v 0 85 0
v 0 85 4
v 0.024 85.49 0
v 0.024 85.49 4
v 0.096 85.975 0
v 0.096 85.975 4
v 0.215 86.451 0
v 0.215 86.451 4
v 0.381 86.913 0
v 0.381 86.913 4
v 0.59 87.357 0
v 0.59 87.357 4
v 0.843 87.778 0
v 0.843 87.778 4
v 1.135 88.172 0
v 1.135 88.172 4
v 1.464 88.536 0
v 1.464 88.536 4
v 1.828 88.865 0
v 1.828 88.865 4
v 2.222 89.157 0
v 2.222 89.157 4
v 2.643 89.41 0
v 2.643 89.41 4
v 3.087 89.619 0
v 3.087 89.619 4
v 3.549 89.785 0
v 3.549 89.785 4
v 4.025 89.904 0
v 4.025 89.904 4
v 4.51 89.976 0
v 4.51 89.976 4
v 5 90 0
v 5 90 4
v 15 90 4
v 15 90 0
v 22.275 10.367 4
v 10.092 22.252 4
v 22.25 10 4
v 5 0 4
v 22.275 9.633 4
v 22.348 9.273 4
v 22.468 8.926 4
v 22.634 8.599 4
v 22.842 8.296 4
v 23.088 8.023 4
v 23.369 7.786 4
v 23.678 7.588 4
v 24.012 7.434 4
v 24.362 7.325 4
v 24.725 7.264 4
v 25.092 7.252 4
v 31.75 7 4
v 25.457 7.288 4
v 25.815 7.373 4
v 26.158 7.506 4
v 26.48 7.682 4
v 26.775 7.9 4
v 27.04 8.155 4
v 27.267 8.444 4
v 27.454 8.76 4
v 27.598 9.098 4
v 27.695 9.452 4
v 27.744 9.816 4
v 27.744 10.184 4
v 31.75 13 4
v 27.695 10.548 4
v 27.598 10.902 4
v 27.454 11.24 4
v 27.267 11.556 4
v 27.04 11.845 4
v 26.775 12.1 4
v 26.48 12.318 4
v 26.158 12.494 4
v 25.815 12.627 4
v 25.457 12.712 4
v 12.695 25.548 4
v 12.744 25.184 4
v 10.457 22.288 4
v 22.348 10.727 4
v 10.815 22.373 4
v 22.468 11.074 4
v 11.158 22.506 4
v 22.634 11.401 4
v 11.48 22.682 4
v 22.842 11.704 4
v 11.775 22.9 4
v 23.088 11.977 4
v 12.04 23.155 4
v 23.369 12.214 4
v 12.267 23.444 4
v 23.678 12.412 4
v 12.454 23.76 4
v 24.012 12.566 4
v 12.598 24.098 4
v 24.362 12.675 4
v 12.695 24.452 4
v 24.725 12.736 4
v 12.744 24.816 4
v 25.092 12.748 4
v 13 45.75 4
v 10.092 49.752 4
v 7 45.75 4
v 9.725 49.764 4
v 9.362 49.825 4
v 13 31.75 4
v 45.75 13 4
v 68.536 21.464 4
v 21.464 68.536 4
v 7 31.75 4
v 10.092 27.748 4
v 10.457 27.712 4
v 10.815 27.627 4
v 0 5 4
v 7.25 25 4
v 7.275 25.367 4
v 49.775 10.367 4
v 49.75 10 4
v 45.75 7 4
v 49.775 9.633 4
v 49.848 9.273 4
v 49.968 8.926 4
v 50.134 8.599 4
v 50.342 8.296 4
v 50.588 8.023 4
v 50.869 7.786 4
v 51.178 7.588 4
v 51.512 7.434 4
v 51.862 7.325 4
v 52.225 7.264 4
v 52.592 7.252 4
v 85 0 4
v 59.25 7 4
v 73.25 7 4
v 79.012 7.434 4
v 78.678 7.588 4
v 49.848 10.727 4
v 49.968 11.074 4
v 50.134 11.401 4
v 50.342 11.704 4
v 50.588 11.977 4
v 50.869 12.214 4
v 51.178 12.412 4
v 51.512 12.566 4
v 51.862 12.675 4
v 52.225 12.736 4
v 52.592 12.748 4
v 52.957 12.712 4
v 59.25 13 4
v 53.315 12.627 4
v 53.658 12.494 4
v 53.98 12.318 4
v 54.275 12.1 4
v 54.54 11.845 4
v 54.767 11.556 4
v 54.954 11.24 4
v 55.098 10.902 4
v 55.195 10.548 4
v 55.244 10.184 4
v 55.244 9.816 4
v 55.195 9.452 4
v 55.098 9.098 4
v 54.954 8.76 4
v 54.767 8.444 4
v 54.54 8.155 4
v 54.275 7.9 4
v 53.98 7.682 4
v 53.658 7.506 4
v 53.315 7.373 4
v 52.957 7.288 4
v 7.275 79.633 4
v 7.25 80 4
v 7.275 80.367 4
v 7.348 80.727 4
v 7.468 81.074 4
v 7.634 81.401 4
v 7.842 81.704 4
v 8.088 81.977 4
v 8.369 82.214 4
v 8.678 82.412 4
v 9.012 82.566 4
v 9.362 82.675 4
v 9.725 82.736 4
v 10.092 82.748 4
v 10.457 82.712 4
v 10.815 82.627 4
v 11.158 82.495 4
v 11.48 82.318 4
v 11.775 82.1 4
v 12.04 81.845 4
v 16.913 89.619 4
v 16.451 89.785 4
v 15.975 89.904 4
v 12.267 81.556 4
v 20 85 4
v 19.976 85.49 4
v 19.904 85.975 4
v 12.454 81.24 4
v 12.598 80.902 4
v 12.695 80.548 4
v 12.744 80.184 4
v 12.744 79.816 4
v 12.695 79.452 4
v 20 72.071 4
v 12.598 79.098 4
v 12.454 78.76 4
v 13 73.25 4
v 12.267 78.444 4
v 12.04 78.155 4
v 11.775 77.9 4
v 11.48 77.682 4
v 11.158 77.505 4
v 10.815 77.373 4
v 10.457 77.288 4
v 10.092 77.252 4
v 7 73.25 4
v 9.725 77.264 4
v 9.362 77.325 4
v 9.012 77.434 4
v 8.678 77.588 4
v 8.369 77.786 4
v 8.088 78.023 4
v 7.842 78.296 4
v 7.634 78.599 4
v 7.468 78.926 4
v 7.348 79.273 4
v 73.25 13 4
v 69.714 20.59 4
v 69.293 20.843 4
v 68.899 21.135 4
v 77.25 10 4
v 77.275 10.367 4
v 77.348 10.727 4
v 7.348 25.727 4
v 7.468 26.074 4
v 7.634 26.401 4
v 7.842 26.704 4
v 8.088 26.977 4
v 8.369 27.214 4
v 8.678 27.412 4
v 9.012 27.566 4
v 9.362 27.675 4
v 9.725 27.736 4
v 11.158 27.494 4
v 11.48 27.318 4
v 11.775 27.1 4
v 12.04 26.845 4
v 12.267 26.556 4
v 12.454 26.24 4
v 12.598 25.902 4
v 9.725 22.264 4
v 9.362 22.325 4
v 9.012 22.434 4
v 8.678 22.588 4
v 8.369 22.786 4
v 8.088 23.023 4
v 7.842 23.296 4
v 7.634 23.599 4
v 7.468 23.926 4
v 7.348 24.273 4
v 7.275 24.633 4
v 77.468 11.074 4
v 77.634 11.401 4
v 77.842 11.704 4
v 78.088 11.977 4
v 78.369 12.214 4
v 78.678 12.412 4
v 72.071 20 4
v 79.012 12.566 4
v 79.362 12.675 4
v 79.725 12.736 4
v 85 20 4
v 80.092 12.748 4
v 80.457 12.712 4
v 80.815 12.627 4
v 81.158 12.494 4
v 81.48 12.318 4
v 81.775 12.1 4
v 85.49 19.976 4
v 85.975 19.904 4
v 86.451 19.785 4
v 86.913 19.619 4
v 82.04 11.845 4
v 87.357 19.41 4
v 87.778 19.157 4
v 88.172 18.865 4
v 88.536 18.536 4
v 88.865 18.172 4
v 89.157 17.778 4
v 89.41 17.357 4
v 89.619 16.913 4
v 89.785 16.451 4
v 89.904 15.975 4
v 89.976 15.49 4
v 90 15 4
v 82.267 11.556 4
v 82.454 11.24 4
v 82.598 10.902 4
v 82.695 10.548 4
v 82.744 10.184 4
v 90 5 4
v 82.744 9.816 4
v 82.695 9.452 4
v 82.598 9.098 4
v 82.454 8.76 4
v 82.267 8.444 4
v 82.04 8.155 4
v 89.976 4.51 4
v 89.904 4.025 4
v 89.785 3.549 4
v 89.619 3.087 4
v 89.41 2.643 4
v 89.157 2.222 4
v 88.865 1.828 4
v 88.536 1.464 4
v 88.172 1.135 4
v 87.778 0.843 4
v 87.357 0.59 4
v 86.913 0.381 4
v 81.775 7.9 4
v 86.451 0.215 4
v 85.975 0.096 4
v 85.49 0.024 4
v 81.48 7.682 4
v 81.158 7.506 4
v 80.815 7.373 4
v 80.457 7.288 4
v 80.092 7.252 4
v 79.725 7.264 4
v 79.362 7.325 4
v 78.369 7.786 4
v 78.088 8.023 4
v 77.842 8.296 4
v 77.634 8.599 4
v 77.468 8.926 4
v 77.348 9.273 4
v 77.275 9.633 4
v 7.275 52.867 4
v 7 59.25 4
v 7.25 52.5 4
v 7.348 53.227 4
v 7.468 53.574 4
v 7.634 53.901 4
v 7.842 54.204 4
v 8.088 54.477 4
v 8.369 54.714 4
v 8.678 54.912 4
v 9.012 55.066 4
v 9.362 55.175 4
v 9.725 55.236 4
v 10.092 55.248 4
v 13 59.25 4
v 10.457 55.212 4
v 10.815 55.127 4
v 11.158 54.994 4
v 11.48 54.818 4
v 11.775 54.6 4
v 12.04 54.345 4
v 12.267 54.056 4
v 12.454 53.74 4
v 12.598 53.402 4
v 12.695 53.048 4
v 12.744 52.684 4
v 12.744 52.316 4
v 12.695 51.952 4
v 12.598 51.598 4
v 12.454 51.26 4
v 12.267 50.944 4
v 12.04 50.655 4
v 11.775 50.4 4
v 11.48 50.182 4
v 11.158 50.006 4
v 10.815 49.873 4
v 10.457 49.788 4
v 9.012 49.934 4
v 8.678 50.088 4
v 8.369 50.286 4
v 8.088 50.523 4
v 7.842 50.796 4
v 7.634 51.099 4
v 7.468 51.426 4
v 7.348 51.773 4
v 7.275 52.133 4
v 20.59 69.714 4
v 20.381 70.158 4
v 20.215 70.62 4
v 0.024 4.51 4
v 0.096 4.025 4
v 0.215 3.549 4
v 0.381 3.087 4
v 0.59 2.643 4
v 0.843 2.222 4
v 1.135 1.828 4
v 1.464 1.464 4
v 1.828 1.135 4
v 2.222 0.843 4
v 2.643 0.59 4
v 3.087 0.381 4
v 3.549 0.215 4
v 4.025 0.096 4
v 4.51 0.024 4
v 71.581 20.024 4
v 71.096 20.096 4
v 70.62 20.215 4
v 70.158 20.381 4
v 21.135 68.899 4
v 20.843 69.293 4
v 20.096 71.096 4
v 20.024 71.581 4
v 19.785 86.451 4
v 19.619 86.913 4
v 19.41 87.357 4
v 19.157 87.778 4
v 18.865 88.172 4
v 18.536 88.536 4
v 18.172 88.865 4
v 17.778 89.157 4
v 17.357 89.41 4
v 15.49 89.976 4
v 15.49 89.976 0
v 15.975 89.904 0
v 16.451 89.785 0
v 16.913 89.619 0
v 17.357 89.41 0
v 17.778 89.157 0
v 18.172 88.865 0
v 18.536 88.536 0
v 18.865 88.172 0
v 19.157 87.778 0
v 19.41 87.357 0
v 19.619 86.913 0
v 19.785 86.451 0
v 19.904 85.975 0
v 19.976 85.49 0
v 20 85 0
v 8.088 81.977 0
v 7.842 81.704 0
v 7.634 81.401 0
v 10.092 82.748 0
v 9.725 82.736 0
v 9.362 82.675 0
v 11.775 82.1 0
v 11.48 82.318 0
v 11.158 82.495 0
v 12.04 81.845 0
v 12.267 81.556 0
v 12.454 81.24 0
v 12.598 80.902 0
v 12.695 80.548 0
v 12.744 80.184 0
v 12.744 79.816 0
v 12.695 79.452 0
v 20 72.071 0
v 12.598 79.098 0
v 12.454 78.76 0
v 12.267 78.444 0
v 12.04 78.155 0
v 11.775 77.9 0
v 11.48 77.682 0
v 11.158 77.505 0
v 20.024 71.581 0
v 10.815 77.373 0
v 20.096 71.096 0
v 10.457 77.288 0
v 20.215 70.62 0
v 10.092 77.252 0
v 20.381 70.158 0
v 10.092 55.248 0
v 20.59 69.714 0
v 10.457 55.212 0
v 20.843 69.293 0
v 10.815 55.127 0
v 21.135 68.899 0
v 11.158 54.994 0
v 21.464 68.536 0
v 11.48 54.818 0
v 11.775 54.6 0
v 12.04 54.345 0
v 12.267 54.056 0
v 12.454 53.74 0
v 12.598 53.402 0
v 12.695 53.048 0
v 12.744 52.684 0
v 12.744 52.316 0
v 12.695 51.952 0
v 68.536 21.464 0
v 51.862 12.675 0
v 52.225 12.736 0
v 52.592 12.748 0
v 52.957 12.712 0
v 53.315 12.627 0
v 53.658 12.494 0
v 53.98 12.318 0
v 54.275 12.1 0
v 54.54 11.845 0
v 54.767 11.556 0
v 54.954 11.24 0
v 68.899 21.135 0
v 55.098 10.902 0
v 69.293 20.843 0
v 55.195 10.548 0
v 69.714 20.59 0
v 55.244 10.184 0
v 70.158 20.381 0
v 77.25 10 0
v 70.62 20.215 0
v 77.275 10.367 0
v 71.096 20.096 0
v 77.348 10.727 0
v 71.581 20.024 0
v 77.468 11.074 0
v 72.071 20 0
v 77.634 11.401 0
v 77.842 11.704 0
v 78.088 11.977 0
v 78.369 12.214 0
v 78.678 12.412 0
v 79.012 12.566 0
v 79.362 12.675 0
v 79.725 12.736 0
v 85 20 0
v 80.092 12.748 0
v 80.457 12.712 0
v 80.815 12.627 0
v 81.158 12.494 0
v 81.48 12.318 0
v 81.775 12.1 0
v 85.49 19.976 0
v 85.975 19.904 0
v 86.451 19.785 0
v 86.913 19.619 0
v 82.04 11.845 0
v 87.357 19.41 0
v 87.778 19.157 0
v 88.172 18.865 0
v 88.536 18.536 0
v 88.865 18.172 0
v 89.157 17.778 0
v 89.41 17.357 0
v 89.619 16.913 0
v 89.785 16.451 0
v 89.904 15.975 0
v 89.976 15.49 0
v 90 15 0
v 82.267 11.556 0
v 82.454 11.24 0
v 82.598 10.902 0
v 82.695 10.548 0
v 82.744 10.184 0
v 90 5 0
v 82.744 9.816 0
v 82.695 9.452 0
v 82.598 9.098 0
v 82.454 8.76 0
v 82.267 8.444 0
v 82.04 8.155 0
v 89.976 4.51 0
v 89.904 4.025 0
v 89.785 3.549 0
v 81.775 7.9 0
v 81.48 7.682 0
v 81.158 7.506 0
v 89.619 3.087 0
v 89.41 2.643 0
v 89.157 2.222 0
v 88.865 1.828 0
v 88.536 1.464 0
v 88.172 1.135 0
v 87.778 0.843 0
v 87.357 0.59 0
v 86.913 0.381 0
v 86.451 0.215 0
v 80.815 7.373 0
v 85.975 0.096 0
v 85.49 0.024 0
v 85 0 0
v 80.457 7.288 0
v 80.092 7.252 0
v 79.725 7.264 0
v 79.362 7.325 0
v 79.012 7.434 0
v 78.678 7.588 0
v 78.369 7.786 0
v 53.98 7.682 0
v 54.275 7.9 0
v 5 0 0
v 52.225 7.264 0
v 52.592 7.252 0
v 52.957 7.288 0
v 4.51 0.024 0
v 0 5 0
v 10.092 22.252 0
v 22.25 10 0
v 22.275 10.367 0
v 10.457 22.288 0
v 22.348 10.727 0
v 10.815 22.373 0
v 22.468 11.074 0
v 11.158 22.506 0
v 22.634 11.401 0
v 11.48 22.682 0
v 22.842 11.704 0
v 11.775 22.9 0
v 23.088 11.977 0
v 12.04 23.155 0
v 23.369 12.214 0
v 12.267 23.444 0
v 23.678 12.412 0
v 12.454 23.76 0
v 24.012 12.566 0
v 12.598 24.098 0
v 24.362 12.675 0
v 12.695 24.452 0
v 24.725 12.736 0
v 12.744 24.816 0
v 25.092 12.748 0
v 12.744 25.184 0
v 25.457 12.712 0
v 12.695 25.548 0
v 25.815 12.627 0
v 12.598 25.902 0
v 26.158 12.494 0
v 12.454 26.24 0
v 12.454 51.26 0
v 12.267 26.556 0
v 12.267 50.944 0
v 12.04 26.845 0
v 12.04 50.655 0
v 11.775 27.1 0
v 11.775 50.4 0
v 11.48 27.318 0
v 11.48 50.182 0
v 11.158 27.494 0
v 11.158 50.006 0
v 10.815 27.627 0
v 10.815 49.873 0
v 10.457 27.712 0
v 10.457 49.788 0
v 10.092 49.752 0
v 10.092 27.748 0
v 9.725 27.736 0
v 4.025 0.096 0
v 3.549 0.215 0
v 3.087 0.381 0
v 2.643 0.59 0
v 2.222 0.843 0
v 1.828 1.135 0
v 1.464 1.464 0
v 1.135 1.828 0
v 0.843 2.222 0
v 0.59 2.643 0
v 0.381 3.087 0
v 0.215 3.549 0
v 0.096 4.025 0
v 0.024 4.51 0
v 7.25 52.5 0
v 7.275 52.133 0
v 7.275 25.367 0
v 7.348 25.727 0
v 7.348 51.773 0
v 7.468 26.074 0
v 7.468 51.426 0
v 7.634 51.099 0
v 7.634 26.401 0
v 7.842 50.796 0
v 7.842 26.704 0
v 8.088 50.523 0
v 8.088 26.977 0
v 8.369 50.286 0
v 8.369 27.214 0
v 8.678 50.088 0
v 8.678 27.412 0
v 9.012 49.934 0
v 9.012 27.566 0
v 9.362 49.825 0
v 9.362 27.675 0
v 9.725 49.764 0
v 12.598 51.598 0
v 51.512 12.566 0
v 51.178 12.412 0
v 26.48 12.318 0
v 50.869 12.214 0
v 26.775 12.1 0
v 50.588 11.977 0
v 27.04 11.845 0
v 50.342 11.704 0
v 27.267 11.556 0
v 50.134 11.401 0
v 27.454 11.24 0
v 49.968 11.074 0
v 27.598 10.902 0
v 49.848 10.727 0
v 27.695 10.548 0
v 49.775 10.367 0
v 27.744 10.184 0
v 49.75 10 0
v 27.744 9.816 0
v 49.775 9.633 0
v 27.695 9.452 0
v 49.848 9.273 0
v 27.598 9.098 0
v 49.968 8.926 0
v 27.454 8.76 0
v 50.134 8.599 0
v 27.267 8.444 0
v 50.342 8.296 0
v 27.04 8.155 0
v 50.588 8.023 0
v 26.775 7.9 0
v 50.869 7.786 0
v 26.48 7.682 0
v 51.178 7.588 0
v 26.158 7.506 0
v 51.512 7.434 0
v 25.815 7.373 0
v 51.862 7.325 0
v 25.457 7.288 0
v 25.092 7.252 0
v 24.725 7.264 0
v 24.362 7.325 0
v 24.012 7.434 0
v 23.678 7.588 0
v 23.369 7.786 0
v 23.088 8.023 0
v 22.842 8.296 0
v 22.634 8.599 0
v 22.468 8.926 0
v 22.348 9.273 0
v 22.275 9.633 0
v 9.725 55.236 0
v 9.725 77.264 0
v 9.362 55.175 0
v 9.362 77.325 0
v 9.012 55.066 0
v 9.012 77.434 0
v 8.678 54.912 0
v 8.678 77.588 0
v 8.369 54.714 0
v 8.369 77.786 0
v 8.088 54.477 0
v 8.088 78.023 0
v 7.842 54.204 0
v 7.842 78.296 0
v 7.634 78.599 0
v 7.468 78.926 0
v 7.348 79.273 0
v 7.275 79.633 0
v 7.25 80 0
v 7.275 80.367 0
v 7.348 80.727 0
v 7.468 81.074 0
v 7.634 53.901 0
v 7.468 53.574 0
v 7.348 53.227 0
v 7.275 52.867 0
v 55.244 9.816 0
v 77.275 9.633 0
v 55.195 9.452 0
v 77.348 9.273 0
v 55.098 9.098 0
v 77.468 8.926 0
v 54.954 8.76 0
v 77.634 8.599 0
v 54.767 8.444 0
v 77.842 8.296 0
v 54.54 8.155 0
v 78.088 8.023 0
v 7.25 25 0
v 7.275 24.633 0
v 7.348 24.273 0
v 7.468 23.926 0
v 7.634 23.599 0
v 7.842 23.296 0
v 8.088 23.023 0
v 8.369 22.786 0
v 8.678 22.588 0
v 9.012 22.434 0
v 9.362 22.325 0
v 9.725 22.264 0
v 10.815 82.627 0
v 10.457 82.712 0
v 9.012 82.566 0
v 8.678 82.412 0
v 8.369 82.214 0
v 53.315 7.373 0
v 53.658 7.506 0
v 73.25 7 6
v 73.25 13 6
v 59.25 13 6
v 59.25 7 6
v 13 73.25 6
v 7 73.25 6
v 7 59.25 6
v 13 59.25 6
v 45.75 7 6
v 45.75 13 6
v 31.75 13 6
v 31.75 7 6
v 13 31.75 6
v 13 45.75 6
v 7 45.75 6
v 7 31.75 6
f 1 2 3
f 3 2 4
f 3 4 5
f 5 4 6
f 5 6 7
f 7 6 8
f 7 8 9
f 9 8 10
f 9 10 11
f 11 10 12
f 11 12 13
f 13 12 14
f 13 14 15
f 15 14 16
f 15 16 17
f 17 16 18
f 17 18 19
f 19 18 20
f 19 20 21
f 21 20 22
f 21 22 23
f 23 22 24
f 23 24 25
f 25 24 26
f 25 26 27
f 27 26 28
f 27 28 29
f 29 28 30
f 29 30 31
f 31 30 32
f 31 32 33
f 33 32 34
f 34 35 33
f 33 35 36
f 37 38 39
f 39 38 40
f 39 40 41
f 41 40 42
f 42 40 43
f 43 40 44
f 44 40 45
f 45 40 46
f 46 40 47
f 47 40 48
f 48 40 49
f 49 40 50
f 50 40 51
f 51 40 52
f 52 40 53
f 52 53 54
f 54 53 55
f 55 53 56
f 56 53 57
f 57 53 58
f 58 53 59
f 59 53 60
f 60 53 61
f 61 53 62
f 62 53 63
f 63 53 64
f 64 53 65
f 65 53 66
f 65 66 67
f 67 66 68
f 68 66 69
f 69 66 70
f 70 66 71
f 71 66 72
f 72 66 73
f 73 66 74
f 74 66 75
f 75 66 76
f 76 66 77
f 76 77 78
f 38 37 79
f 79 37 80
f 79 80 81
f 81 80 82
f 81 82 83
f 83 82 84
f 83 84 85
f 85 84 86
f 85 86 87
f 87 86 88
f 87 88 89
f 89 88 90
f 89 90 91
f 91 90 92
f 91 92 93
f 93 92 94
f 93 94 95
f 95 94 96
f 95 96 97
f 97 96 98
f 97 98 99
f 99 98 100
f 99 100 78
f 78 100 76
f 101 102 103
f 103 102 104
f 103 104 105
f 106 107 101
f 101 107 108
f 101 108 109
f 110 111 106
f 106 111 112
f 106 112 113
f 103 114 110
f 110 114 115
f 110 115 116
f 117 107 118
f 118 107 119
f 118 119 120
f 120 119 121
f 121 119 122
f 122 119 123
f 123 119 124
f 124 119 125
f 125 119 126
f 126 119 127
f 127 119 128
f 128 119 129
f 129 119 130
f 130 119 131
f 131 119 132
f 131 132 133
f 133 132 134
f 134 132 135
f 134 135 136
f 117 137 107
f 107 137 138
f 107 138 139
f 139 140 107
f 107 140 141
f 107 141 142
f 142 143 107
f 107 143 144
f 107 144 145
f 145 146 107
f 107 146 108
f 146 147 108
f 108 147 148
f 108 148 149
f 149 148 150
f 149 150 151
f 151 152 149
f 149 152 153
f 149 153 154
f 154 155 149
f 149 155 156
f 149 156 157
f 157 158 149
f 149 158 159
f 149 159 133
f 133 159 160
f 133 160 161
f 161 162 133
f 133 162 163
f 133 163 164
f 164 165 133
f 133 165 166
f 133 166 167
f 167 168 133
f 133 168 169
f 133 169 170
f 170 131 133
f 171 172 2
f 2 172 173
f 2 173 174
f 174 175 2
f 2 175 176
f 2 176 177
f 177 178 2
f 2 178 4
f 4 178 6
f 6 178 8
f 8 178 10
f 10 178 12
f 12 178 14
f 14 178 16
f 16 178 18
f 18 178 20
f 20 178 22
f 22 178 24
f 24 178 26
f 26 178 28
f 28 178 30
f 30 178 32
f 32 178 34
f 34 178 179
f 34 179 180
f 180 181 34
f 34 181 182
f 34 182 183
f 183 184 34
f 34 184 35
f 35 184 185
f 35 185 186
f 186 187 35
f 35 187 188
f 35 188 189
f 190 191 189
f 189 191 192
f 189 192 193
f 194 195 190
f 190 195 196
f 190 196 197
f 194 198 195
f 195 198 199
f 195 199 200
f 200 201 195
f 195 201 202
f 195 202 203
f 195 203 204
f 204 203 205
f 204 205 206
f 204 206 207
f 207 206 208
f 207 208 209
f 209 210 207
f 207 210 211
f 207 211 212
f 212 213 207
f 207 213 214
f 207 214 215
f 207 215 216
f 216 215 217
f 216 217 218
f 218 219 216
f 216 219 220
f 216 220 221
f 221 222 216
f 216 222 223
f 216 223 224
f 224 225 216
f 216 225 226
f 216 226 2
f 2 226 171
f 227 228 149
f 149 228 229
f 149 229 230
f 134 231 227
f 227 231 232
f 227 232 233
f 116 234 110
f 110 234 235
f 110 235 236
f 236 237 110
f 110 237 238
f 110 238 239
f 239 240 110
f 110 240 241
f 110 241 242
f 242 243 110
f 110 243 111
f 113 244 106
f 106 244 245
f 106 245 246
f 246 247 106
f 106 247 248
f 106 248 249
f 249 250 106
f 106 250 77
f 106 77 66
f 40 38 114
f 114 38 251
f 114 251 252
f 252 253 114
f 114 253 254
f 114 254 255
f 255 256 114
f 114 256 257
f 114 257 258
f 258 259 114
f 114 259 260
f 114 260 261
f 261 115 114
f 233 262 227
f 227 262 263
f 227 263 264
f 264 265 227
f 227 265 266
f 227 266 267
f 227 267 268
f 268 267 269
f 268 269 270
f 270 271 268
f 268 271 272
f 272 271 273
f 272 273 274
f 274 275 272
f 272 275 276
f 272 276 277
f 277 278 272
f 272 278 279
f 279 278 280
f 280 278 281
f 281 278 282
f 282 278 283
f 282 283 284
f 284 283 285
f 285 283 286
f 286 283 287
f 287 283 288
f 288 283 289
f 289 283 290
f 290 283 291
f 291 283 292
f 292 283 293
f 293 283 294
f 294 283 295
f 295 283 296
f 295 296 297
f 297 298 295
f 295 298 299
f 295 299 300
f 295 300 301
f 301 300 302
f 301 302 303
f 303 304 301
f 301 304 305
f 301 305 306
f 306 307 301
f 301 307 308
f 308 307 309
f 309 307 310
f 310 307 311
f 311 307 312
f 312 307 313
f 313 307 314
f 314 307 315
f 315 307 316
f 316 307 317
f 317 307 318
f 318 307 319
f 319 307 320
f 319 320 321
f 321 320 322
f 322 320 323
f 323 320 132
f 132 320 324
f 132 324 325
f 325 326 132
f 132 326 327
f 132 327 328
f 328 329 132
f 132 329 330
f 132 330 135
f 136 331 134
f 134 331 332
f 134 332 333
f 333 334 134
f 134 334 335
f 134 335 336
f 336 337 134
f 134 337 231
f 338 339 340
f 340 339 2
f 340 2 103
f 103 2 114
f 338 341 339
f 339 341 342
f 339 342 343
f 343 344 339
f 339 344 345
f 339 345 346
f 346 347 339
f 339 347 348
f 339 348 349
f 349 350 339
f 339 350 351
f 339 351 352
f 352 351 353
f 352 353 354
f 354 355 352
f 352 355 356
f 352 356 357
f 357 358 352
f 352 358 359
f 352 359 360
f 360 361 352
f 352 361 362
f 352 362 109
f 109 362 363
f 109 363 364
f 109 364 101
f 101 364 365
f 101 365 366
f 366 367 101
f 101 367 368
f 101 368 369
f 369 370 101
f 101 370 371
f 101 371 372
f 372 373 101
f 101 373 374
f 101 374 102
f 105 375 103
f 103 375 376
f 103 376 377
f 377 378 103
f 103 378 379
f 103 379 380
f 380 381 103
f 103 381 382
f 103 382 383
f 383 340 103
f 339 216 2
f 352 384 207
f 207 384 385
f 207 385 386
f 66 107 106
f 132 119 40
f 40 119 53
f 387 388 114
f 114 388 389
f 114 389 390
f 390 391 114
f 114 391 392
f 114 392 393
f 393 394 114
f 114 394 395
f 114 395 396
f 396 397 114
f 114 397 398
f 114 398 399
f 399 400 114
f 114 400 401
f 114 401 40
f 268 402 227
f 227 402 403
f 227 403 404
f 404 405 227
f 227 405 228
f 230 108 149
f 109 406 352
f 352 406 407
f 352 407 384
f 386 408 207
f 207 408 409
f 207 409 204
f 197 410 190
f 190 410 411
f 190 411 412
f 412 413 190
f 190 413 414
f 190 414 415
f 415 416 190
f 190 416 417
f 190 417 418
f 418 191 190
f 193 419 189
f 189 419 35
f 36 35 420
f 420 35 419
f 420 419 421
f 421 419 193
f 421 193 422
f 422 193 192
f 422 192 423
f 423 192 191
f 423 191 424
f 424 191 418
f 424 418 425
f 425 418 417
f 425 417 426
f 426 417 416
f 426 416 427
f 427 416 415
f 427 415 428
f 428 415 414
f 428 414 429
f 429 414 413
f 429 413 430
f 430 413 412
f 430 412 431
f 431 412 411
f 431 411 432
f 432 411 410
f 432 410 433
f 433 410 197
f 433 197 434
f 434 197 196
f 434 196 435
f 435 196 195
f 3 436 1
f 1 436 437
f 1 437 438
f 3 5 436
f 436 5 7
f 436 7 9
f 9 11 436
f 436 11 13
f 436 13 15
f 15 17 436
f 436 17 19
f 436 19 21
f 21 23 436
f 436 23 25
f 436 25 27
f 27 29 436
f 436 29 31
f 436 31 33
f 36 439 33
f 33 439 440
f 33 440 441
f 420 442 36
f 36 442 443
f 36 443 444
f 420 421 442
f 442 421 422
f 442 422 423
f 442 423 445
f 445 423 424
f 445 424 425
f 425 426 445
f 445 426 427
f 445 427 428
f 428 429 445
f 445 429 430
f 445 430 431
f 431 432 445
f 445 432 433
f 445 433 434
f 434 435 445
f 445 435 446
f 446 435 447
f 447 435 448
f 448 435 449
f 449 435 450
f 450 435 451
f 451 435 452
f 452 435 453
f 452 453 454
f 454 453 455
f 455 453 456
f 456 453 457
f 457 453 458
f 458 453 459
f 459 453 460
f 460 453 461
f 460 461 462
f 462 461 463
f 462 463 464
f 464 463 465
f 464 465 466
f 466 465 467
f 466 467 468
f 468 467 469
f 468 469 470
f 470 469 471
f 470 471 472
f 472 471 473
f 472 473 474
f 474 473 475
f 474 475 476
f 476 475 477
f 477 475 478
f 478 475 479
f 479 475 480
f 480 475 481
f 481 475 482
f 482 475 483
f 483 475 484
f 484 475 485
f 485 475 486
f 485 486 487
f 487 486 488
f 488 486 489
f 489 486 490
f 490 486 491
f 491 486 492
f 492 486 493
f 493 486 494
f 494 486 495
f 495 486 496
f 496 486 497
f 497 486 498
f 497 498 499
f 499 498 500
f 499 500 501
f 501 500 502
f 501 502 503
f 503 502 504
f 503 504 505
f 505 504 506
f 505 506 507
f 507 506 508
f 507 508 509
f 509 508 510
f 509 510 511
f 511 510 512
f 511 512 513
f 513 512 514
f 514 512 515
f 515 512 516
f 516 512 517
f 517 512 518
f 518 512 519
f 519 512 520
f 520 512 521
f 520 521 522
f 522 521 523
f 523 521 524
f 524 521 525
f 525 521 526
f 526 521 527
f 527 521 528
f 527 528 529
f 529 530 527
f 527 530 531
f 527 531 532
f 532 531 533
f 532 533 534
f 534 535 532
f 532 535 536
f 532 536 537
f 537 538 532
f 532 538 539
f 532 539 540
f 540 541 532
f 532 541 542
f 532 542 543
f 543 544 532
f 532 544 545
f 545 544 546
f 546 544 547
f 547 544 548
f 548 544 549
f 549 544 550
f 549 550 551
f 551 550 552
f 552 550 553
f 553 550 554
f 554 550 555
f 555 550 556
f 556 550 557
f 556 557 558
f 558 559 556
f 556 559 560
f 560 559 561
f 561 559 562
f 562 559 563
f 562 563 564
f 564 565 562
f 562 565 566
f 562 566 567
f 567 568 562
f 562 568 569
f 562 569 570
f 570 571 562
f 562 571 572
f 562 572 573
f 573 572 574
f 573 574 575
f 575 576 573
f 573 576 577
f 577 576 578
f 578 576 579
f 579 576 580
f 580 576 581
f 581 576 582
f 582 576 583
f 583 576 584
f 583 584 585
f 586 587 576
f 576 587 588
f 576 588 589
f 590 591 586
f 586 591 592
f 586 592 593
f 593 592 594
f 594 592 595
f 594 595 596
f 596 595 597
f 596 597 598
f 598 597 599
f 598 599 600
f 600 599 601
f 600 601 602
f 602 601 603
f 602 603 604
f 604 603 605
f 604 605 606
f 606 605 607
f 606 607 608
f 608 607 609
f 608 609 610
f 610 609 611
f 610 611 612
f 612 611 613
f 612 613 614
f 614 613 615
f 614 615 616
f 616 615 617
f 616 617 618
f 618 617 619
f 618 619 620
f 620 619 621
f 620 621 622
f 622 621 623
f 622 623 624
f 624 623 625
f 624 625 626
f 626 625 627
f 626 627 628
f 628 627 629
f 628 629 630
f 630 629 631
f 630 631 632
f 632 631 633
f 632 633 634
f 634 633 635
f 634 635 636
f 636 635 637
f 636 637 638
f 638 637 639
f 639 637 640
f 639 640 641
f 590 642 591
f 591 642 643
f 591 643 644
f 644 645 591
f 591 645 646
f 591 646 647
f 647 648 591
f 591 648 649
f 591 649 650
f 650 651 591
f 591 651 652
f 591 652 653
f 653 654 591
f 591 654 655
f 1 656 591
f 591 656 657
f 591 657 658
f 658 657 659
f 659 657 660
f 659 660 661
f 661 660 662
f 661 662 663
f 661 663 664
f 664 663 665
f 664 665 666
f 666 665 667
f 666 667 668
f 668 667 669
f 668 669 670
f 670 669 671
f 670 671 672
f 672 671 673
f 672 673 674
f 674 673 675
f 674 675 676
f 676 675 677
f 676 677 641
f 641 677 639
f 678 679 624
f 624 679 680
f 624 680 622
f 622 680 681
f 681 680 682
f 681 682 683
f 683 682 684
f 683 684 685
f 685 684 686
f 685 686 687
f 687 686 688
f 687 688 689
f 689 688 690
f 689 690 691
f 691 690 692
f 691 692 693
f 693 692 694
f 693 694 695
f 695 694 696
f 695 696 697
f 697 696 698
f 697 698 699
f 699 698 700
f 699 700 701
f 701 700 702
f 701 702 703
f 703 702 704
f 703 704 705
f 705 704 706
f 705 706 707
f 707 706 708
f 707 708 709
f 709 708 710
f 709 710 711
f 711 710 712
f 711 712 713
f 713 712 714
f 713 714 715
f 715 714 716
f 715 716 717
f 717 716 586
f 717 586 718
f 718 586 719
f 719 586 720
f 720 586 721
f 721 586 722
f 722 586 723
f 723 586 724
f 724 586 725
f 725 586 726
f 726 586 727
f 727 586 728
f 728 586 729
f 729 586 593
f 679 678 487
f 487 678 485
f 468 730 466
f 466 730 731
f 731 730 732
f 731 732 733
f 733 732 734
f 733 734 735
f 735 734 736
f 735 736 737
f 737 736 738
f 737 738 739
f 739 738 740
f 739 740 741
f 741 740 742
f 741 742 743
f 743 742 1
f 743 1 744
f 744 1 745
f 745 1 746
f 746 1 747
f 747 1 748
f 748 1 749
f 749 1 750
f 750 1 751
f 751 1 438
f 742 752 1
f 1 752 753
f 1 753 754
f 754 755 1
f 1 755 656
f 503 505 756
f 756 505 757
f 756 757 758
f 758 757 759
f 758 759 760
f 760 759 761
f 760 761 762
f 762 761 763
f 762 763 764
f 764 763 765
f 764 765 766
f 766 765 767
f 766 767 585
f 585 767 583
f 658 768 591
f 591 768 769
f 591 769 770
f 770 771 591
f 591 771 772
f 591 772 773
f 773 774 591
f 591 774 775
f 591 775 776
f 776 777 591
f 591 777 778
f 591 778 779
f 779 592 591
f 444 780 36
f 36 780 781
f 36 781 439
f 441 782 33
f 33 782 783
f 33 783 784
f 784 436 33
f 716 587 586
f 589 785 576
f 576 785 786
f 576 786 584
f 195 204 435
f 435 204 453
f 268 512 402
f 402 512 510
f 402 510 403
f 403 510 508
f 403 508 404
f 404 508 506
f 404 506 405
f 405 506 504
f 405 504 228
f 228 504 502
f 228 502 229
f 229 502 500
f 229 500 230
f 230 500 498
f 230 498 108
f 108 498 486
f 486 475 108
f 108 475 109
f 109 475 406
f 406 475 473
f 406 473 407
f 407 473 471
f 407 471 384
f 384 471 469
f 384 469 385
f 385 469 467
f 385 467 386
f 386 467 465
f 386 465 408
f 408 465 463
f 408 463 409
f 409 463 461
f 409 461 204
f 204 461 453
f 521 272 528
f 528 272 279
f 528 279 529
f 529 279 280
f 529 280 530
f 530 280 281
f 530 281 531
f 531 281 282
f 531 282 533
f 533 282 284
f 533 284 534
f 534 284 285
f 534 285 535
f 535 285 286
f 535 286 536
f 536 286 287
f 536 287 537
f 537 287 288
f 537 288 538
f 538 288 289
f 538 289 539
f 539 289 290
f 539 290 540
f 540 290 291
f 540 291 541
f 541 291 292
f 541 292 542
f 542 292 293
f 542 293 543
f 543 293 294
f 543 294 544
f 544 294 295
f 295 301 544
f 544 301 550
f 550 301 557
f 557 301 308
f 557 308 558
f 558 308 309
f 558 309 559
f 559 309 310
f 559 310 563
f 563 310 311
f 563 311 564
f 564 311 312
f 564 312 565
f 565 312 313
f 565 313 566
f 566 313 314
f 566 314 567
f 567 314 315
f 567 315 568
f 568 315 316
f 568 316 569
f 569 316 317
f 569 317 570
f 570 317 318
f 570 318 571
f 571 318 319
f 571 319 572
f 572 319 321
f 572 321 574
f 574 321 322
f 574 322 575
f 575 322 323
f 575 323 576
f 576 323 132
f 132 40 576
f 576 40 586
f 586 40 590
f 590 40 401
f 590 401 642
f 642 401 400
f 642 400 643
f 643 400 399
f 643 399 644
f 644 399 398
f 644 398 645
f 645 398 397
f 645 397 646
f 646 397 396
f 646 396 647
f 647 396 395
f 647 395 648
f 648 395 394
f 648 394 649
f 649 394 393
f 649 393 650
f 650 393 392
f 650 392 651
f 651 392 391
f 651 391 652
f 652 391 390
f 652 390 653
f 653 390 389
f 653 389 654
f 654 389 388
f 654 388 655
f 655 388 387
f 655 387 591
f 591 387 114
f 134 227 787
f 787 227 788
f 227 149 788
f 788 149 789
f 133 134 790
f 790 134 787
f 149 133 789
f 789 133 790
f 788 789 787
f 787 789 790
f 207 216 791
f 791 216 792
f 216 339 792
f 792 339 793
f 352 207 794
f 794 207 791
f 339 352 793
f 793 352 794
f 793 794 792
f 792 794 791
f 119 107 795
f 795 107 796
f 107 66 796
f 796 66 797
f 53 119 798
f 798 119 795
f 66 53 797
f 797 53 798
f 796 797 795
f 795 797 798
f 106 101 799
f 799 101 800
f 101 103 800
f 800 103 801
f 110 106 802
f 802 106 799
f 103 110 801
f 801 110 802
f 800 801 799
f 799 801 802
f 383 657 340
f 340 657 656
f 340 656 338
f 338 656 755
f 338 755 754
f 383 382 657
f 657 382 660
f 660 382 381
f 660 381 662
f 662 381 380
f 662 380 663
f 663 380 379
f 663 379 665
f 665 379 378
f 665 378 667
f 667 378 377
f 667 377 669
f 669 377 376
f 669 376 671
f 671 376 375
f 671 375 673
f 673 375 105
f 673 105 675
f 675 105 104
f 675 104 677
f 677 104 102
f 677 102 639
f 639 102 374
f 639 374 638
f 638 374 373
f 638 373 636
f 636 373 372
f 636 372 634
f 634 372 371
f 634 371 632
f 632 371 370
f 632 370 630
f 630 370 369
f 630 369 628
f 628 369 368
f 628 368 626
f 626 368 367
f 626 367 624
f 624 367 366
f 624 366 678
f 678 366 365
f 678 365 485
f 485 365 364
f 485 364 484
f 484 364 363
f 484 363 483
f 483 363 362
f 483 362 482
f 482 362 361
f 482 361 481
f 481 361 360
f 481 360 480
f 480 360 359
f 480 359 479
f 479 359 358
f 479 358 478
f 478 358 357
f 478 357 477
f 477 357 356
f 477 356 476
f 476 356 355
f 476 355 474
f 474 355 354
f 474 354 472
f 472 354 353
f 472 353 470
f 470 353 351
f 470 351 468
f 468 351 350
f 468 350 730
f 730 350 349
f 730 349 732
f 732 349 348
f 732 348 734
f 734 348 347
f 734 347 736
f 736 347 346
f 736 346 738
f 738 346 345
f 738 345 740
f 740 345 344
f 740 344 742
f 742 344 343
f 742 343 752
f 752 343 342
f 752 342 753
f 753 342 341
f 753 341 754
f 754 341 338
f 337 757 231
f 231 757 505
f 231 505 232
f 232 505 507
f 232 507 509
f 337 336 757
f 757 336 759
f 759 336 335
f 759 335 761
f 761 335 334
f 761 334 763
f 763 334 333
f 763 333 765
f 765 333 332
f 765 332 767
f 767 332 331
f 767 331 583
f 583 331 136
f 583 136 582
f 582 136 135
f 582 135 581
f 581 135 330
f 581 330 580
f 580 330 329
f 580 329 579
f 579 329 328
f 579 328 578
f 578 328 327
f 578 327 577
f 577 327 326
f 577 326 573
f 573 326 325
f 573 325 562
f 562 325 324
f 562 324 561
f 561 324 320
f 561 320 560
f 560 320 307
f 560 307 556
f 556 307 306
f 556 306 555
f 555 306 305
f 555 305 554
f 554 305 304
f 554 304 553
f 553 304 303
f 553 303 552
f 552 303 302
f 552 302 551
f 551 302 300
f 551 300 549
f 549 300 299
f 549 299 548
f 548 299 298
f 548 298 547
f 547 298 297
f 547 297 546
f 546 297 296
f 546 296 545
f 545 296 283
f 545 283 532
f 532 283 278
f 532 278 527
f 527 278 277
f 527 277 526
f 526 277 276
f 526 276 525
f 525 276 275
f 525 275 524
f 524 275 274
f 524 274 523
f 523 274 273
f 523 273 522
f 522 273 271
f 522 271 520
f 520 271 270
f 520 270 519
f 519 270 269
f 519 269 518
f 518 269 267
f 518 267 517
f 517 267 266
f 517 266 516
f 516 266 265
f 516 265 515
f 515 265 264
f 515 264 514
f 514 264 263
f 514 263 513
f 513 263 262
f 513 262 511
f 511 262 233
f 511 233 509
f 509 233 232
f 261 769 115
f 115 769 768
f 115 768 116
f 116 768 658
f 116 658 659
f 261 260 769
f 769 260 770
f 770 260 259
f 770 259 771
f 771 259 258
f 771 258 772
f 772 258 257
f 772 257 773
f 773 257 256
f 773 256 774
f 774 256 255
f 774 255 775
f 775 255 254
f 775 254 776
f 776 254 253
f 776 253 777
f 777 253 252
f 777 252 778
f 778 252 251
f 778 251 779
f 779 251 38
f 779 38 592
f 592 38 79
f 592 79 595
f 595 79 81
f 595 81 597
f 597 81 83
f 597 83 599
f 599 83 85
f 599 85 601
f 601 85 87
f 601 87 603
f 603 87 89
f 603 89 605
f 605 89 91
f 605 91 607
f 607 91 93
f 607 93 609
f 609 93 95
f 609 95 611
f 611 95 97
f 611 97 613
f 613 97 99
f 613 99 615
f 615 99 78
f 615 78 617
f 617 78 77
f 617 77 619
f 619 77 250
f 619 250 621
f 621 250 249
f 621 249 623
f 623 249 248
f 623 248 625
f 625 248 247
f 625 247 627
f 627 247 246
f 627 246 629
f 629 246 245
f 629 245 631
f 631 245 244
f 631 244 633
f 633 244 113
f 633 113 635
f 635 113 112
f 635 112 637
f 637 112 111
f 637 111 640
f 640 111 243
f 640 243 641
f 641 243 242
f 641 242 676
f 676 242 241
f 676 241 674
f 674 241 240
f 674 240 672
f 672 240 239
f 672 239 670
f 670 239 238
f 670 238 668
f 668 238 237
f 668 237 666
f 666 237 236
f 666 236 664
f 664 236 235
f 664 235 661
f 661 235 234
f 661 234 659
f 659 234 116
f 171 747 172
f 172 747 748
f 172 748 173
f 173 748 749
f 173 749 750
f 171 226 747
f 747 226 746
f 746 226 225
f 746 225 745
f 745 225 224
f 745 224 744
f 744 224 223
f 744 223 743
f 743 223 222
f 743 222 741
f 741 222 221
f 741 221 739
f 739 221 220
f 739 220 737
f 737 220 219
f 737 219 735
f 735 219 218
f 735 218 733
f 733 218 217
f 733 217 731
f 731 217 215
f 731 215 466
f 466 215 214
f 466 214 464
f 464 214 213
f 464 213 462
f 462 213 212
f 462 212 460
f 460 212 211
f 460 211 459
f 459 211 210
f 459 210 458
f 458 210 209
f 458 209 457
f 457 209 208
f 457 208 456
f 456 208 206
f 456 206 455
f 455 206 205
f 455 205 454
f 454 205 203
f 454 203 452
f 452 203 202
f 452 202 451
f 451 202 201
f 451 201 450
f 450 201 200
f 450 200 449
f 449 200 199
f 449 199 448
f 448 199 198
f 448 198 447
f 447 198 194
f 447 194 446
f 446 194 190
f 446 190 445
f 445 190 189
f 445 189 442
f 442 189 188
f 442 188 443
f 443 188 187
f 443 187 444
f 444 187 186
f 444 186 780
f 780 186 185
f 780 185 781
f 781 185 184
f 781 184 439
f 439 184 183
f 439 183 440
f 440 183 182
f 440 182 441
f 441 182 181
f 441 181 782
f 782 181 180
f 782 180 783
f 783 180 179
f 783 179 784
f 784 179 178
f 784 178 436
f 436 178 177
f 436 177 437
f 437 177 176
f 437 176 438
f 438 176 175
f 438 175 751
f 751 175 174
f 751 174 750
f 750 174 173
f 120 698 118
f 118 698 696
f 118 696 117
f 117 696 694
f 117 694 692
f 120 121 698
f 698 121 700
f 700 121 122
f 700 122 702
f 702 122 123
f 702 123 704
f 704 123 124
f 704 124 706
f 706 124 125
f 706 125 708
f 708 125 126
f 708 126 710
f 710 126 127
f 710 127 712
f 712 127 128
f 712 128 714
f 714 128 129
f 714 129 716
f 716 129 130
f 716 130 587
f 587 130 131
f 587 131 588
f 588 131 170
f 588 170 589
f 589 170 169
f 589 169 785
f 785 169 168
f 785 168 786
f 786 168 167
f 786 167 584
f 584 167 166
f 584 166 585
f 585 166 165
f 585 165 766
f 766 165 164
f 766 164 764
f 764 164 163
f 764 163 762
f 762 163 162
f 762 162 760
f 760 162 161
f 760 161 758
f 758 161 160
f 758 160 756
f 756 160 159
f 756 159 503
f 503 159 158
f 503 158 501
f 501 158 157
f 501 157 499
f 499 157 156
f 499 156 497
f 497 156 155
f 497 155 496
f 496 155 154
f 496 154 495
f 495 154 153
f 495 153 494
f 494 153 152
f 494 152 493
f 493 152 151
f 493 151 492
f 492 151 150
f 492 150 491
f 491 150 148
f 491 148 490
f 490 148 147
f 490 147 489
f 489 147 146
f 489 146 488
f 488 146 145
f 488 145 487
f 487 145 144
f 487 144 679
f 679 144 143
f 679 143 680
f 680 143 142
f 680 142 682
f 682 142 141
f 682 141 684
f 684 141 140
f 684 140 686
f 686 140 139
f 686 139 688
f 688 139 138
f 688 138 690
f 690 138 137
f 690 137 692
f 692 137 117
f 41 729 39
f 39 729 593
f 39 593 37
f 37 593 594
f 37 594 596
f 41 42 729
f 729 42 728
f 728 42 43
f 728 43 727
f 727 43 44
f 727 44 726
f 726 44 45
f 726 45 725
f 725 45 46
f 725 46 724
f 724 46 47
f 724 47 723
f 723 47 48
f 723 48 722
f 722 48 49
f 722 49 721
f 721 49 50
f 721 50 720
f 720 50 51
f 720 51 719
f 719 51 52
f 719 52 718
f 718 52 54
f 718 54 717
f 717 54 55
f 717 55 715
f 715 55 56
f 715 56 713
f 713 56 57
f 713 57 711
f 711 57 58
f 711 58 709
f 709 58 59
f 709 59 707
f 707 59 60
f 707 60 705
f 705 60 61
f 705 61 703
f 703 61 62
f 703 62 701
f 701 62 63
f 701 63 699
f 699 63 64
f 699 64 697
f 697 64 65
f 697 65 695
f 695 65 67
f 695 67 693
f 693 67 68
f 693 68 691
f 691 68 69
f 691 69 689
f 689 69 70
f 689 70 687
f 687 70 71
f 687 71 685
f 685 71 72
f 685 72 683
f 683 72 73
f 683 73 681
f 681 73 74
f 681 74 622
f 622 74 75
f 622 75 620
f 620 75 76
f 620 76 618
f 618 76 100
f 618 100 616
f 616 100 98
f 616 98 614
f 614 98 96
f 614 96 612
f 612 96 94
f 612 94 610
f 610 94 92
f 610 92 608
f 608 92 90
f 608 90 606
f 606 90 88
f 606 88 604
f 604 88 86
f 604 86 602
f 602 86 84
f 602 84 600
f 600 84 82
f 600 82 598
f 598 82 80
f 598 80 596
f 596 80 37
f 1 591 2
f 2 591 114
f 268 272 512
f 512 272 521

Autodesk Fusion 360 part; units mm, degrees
sketch "Sketch1" plane through (0, 0, 0) normal (0, 0, 1) x (1, 0, 0)
  line L0 (0, 0) -> (0, 90)
  line L1 (0, 0) -> (90, 0)
  line L2 (0, 90) -> (20, 90)
  line L3 (90, 0) -> (90, 20)
  line L4 (90, 20) -> (70, 20)
  line L5 (20, 90) -> (20, 70)
  line L6 (20, 70) -> (70, 20)
  line L7 (10, 90) -> (10, 0) construction
  line L8 (90, 10) -> (0, 10) construction
  circle A0 centre (80, 10) radius 2.75
  circle A1 centre (25, 10) radius 2.75
  circle A2 centre (52.5, 10) radius 2.75
  line L9 (0, 0) -> (79.8876, 79.8876) construction
  line L10 (0, 0) -> (112.9781, 0) construction
  line L11 (25, 10) -> (52.5, 10) construction
  line L12 (52.5, 10) -> (80, 10) construction
  line L13 (45.75, 7) -> (31.75, 7)
  line L14 (31.75, 7) -> (31.75, 13)
  line L15 (31.75, 13) -> (45.75, 13)
  line L16 (45.75, 13) -> (45.75, 7)
  line L17 (45.75, 7) -> (31.75, 13) construction
  line L18 (31.75, 7) -> (45.75, 13) construction
  line L19 (73.25, 7) -> (59.25, 7)
  line L20 (59.25, 7) -> (59.25, 13)
  line L21 (59.25, 13) -> (73.25, 13)
  line L22 (73.25, 13) -> (73.25, 7)
  line L23 (73.25, 7) -> (59.25, 13) construction
  line L24 (59.25, 7) -> (73.25, 13) construction
  circle A3 centre (10, 25) radius 2.75
  line L25 (7, 31.75) -> (13, 31.75)
  line L26 (13, 31.75) -> (13, 45.75)
  line L27 (7, 45.75) -> (7, 31.75)
  line L28 (13, 45.75) -> (7, 45.75)
  line L29 (7, 59.25) -> (13, 59.25)
  line L30 (13, 59.25) -> (13, 73.25)
  line L31 (13, 73.25) -> (7, 73.25)
  line L32 (7, 73.25) -> (7, 59.25)
  circle A4 centre (10, 80) radius 2.75
  circle A5 centre (10, 52.5) radius 2.75
  point P0 (38.75, 10)
  point P1 (66.25, 10)
  dimension "d1" = 90
  dimension "d2" = 90
  dimension "d3" = 20
  dimension "d4" = 20
  dimension "d5" = 20
  dimension "d6" = 20
  dimension "d7" = 5.5
  dimension "d8" = 5.5
  dimension "d9" = 10
  dimension "d10" = 65
  dimension "d11" = 5.5
  dimension "d12" = 37.5
  dimension "d13" = 45
  dimension "d14" = 14
  dimension "d15" = 6
  dimension "d16" = 14
  dimension "d17" = 6
extrude "Extrude1" add sketch "Sketch1" along normal blind 4
extrude "Extrude3" add sketch "Sketch1" along normal blind 6 contours L13 L14 L15 L16 | L19 L20 L21 L22 | L25 L26 L27 L28 | L29 L30 L31 L32
sketch "Sketch2" plane through (0, 0, 4) normal (0, 0, 1) x (-1, 0, 0)
  circle A0 centre (-25, -10) radius 2.75
  circle A1 centre (-52.5, -10) radius 2.75
  circle A2 centre (-10, -80) radius 2.75
  circle A3 centre (-10, -25) radius 2.75
  circle A4 centre (-80, -10) radius 2.75
  circle A5 centre (-10, -52.5) radius 2.75
  line L0 (0, 0) -> (-90, 0)
  line L1 (-90, 0) -> (-90, -20)
  line L2 (-90, -20) -> (-70, -20)
  line L3 (-70, -20) -> (-20, -70)
  line L4 (-20, -70) -> (-20, -90)
  line L5 (-20, -90) -> (0, -90)
  line L6 (0, -90) -> (0, 0)
  line L7 (-20, -70) -> (-20, -20) construction
  line L8 (-20, -20) -> (-70, -20) construction
  line L9 (-20, -70) -> (-70, -20) construction
  line L10 (-23, -62.7574) -> (-62.7574, -23)
  line L11 (-23, -23) -> (-62.7574, -23)
  line L12 (-23, -62.7574) -> (-23, -23)
  line L13 (-7, -45.75) -> (-13, -45.75)
  line L14 (-13, -45.75) -> (-13, -31.75)
  line L15 (-13, -31.75) -> (-7, -31.75)
  line L16 (-7, -31.75) -> (-7, -45.75)
  line L17 (-59.25, -13) -> (-73.25, -13)
  line L18 (-73.25, -13) -> (-73.25, -7)
  line L19 (-73.25, -7) -> (-59.25, -7)
  line L20 (-59.25, -7) -> (-59.25, -13)
  line L21 (-7, -59.25) -> (-7, -73.25)
  line L22 (-7, -73.25) -> (-13, -73.25)
  line L23 (-13, -73.25) -> (-13, -59.25)
  line L24 (-13, -59.25) -> (-7, -59.25)
  line L25 (-31.75, -13) -> (-45.75, -13)
  line L26 (-45.75, -13) -> (-45.75, -7)
  line L27 (-45.75, -7) -> (-31.75, -7)
  line L28 (-31.75, -7) -> (-31.75, -13)
  dimension "d20" = 3
fillet "Fillet1" radius 5 7 edges at (0, 0, 2) (90, 0, 2) (90, 20, 2) (20, 70, 2) (70, 20, 2) (20, 90, 2) (0, 90, 2)
equation "d5 = d6"
